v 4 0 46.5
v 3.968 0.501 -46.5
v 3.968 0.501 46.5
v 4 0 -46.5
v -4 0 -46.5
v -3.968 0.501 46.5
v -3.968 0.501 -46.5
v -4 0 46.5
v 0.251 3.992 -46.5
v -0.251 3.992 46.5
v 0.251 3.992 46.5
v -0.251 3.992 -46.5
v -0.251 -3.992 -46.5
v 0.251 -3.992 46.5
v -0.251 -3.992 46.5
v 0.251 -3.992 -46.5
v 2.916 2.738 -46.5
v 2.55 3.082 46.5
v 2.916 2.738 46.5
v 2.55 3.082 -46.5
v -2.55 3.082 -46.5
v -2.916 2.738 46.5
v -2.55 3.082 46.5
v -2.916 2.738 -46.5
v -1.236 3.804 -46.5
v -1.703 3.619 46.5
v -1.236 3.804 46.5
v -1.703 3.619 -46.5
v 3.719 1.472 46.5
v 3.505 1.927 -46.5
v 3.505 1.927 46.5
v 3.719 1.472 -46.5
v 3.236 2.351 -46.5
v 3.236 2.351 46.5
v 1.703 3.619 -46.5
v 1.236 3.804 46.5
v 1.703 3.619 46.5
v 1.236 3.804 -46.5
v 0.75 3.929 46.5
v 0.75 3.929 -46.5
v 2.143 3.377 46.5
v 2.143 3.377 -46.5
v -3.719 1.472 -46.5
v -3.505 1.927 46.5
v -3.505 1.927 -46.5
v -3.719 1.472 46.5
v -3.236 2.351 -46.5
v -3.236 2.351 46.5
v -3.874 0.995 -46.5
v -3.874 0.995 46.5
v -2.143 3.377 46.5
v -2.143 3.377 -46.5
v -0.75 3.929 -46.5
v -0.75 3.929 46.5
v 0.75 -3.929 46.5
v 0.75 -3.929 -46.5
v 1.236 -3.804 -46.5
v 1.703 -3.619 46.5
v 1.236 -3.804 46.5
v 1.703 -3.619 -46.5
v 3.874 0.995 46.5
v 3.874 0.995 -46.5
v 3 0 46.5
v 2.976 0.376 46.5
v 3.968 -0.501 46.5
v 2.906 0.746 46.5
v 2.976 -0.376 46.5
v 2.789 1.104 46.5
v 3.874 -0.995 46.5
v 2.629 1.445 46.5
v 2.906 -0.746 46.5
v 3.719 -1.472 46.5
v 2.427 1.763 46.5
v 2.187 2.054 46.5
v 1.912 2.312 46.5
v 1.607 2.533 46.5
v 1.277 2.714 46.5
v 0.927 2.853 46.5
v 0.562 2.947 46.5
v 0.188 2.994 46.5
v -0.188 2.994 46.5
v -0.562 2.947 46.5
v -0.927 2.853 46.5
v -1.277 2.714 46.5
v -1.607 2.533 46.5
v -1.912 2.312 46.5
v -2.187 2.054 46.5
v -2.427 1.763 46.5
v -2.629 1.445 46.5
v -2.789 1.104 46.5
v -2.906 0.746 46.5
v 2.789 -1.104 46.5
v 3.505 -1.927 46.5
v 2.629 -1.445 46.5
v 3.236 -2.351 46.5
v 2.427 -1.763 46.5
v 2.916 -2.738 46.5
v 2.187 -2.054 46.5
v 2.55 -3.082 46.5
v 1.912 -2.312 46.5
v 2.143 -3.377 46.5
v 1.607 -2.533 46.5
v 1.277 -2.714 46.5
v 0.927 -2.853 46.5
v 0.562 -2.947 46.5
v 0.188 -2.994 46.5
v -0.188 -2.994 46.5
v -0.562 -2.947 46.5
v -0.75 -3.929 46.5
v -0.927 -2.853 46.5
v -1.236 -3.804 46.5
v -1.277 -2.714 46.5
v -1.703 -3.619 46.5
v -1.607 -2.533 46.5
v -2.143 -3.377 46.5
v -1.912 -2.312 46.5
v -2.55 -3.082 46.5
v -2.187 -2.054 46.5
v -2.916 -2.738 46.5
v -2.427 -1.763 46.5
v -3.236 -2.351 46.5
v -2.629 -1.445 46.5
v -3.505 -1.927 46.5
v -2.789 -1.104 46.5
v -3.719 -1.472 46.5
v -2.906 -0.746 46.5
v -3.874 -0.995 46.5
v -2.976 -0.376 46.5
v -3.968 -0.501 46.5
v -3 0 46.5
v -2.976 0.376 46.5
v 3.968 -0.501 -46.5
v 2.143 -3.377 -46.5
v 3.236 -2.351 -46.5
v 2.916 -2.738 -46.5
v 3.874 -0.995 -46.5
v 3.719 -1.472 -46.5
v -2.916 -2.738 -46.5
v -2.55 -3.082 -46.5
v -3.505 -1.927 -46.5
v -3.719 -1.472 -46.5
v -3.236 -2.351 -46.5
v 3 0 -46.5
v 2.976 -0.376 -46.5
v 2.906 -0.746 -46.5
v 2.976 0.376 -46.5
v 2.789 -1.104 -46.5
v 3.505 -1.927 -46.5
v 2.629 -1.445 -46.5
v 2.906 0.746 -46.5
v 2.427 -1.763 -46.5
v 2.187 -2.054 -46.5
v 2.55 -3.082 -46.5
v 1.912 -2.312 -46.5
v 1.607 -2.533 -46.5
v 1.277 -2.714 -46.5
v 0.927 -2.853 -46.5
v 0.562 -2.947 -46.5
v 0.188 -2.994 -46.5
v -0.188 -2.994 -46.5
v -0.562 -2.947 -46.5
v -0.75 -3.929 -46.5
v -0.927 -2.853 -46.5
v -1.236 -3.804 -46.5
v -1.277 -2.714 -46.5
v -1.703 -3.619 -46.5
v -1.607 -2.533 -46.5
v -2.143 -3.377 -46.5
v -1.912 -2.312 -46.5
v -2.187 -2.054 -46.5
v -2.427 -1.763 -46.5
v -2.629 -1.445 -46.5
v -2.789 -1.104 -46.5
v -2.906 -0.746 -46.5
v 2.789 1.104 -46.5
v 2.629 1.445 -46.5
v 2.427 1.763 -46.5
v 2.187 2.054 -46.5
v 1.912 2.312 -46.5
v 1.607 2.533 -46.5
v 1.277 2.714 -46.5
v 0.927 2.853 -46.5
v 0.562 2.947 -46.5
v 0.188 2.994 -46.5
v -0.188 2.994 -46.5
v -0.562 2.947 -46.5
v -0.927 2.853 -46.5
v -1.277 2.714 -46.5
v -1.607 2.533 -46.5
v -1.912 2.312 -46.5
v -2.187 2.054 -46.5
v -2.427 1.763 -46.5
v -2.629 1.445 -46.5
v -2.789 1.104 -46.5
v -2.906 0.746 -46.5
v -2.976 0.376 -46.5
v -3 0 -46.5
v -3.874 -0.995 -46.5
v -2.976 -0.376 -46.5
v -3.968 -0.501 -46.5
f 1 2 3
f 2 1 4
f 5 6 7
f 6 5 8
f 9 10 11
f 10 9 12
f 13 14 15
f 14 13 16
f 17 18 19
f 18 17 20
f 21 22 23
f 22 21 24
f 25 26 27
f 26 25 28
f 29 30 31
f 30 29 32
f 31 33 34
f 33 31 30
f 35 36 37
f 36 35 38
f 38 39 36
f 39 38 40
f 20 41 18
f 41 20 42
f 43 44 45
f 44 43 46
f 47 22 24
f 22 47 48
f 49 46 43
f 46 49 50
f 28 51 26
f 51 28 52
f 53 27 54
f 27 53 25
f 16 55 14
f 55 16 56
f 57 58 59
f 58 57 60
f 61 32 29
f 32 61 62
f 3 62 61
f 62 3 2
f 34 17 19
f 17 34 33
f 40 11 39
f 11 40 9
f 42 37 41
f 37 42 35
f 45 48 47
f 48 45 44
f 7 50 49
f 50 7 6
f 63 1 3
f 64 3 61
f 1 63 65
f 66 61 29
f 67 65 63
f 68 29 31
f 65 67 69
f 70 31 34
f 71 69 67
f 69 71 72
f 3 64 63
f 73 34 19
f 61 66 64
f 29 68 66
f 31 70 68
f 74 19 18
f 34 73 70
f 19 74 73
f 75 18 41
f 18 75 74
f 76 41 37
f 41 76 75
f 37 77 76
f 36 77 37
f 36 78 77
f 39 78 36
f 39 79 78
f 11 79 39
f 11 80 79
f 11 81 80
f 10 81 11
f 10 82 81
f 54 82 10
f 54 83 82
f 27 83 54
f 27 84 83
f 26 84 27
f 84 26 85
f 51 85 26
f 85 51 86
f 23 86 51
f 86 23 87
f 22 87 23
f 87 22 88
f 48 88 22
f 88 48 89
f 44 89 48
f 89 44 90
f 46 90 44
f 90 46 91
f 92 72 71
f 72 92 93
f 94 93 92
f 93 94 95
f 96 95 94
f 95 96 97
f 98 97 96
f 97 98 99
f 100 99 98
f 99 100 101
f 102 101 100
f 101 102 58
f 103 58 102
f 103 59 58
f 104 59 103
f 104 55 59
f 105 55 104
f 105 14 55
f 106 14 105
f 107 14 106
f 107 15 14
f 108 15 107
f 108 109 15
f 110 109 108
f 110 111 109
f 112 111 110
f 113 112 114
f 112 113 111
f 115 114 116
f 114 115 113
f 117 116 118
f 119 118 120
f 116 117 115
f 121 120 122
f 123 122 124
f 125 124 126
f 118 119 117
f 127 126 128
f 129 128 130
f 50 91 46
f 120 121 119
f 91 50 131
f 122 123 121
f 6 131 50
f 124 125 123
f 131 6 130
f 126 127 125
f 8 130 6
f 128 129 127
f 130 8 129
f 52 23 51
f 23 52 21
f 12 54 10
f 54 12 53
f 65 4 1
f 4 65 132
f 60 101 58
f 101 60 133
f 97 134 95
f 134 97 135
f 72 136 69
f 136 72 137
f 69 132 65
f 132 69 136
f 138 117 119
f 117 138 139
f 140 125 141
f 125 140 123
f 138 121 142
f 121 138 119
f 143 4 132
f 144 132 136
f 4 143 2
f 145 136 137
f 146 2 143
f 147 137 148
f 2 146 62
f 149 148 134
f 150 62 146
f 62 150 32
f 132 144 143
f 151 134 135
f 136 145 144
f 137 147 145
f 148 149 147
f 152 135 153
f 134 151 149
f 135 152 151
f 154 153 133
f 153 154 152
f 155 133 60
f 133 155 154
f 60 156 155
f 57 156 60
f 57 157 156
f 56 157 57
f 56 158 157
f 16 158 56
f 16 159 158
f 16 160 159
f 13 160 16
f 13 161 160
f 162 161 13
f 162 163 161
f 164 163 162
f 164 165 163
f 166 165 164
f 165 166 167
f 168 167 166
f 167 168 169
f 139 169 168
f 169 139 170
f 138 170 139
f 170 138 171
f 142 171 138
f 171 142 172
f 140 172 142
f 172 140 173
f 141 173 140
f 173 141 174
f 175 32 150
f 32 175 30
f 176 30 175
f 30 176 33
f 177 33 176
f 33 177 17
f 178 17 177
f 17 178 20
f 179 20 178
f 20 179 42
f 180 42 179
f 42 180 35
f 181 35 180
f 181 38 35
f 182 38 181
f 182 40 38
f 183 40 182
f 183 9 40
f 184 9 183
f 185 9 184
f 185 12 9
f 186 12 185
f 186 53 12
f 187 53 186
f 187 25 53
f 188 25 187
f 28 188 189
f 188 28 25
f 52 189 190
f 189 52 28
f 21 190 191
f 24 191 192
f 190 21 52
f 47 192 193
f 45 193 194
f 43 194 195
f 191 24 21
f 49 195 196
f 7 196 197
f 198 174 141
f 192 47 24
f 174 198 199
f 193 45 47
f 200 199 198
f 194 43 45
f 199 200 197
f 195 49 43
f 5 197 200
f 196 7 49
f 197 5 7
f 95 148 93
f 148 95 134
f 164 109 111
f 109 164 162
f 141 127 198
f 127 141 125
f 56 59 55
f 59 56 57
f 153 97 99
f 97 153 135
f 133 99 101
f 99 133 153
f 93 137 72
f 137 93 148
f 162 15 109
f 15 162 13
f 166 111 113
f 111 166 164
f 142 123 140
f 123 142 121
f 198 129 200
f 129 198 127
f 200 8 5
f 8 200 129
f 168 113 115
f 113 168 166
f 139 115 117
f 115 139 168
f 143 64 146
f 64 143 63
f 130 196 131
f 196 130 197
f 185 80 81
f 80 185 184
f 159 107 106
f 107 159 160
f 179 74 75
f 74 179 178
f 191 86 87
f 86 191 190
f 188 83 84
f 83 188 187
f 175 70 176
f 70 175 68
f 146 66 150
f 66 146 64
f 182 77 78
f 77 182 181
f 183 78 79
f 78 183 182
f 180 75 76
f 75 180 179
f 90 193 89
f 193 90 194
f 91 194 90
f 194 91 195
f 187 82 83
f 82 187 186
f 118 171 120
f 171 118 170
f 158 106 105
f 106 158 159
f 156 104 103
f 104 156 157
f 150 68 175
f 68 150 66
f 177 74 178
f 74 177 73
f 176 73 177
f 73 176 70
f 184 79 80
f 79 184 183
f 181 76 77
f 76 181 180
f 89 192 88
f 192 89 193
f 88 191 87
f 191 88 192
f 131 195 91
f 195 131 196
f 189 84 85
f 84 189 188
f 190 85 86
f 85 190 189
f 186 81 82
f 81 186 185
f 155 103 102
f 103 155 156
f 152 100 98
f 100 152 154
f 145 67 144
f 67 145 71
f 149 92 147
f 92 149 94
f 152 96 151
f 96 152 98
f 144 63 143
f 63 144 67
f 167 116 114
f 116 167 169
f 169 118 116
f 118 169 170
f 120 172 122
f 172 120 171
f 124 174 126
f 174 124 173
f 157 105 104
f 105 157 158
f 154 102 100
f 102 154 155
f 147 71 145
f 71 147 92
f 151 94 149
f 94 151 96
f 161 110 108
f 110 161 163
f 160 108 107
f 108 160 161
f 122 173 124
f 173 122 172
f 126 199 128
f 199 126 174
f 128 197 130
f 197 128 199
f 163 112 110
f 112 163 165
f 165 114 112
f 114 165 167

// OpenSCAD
$fn = 50;


difference() {
	union() {
		translate(v = [0, 0, -46.5000000000]) {
			cylinder(h = 93, r = 4.0000000000);
		}
	}
	union() {
		translate(v = [0, 0, -100.0000000000]) {
			cylinder(h = 200, r = 3);
		}
	}
}
